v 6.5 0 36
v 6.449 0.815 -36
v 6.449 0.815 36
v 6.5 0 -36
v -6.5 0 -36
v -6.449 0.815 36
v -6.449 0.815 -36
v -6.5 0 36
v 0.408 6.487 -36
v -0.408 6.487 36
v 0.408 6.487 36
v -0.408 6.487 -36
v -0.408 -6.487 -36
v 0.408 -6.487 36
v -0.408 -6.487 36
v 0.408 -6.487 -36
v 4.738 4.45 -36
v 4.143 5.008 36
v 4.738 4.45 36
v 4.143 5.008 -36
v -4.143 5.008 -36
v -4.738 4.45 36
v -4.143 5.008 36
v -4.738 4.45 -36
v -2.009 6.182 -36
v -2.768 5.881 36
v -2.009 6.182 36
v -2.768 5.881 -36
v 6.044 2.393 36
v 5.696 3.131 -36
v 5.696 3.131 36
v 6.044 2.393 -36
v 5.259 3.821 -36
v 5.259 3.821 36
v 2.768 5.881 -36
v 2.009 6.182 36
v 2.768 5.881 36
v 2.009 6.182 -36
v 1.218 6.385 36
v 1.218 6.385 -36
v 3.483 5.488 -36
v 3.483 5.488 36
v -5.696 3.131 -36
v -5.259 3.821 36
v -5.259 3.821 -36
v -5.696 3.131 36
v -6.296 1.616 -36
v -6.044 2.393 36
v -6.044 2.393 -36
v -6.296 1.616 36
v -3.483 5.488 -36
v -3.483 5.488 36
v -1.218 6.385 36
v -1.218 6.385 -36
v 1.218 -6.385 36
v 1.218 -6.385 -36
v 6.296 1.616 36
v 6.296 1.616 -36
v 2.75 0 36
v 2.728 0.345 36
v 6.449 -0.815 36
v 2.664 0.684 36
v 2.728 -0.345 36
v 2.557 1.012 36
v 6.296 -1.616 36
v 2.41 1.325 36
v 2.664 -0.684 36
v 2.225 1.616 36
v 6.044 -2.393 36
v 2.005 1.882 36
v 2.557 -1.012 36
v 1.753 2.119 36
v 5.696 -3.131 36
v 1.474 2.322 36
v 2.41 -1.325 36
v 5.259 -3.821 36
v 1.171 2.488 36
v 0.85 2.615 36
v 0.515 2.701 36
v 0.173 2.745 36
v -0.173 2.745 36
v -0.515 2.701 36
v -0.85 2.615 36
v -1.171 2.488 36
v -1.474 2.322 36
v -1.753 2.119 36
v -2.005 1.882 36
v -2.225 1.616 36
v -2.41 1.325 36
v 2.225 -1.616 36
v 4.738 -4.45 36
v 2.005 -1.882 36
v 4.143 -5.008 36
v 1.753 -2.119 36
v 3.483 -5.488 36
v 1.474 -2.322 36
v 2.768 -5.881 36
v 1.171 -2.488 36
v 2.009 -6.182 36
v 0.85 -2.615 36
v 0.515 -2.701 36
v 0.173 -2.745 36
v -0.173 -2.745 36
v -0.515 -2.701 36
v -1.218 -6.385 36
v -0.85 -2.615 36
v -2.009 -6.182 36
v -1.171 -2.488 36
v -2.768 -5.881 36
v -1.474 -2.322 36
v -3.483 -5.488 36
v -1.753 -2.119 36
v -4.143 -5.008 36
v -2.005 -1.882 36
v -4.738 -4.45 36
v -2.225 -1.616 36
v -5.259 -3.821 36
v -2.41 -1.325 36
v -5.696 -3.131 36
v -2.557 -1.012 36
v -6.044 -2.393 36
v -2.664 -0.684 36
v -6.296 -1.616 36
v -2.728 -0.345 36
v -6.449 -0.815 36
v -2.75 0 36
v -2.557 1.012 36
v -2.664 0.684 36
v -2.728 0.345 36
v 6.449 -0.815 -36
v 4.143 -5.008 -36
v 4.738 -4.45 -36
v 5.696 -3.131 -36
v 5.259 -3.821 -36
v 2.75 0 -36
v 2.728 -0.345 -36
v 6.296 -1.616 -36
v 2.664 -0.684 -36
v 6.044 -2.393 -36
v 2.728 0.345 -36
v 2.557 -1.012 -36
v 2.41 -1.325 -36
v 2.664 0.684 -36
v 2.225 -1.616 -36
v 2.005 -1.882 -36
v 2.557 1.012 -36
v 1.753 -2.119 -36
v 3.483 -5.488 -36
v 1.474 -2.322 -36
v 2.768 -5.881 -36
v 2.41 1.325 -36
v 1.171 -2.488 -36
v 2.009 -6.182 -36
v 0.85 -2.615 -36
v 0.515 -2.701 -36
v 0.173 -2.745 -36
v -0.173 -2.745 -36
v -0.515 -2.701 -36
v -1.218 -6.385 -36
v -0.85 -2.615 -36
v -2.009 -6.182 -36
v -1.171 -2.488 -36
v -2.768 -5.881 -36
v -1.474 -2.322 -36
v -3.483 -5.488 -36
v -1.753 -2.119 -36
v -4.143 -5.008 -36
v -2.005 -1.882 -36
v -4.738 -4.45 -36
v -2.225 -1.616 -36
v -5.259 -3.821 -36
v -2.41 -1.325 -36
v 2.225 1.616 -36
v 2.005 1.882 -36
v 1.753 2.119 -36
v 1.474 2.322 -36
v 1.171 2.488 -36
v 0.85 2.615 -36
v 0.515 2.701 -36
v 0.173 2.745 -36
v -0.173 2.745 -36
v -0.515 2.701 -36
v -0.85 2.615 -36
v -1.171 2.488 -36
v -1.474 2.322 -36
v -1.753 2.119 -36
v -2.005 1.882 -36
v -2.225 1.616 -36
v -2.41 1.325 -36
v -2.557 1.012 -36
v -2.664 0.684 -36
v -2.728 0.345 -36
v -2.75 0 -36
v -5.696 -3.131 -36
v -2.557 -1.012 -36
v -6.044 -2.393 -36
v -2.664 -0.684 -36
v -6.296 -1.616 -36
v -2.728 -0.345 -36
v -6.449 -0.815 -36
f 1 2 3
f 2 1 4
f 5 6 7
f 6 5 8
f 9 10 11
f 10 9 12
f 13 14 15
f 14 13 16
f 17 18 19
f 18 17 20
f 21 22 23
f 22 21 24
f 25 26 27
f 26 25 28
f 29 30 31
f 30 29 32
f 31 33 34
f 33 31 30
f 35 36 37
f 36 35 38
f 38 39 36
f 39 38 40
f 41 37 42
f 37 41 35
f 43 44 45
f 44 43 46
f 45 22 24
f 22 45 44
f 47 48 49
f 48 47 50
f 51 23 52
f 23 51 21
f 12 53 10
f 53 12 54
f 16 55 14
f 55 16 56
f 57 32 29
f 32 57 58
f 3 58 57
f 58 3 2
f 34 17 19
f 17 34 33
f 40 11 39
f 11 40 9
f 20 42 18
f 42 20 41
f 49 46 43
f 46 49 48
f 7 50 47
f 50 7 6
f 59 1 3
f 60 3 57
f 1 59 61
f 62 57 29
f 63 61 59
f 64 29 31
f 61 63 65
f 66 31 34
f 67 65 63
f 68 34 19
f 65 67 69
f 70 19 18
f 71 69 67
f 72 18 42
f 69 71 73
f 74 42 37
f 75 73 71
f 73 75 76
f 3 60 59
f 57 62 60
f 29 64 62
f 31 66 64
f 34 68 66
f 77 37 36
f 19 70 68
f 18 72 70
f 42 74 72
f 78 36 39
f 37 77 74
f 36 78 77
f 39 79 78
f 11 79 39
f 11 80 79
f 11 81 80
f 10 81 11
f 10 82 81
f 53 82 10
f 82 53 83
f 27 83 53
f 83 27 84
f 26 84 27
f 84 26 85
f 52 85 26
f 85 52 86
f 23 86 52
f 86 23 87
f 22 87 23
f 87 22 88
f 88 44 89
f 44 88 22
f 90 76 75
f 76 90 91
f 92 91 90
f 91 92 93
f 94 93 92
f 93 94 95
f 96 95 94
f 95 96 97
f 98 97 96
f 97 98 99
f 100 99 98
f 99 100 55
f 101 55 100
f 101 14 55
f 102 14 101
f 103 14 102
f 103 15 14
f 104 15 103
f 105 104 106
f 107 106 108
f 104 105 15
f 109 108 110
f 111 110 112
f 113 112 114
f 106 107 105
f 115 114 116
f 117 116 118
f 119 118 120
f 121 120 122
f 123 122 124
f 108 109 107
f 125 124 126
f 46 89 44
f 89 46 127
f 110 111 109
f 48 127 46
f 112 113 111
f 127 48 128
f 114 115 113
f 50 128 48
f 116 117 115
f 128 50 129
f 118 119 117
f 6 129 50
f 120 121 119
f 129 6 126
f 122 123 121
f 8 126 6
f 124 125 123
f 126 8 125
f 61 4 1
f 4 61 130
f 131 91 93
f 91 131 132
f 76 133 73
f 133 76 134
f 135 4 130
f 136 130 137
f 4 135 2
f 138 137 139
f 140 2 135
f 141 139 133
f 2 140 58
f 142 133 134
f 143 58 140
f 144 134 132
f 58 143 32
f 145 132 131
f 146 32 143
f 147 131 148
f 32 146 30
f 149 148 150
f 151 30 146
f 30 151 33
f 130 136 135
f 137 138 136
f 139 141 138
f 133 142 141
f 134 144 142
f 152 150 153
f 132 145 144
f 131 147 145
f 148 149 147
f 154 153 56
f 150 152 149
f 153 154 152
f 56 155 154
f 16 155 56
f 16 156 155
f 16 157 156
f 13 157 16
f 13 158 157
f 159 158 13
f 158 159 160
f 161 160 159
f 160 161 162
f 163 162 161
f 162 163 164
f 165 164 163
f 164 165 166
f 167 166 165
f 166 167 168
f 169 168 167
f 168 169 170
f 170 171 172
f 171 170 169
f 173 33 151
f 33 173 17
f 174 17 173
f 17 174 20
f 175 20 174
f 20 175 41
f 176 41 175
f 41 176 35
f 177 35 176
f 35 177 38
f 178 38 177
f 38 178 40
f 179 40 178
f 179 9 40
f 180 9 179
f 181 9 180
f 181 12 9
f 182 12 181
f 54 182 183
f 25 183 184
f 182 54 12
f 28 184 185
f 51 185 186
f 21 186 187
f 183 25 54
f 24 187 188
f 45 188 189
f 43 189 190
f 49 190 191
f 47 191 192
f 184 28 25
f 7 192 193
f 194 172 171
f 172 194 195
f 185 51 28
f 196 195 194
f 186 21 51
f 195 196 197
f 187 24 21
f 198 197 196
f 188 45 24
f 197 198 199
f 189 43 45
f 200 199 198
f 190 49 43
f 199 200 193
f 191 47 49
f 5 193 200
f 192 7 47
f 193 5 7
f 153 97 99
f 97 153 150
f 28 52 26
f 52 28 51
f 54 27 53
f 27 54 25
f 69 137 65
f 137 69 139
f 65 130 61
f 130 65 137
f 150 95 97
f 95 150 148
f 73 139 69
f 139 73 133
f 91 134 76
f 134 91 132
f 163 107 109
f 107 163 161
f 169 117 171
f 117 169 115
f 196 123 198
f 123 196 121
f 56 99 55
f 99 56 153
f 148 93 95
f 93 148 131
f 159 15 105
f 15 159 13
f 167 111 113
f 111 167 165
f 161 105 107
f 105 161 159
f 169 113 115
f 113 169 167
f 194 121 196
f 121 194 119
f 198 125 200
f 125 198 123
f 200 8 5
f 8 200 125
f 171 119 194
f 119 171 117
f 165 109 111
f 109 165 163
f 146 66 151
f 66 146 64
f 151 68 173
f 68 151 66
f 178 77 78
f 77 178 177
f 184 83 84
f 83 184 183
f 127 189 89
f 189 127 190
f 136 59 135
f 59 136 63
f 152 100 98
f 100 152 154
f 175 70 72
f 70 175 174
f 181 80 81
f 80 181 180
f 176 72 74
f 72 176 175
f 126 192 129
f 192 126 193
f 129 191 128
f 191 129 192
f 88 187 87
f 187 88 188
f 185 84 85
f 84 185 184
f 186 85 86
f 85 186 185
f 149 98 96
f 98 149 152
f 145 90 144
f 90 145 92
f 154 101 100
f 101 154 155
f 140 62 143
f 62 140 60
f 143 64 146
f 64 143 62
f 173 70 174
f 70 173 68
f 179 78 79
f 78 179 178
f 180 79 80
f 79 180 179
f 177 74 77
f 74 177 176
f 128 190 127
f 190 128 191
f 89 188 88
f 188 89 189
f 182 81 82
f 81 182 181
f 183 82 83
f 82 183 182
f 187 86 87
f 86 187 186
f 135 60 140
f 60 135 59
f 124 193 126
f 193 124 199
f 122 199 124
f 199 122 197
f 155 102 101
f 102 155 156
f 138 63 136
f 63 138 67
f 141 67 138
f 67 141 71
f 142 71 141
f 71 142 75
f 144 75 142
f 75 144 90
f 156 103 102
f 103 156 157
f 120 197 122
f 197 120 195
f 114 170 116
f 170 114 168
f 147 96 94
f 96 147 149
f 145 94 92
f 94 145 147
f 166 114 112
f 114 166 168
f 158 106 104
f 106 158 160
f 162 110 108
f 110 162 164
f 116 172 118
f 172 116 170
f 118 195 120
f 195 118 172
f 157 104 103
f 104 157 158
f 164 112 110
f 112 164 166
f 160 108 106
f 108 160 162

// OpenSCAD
$fn = 50;


difference() {
	union() {
		translate(v = [0, 0, -36.0000000000]) {
			cylinder(h = 72, r = 6.5000000000);
		}
	}
	union() {
		translate(v = [0, 0, -100.0000000000]) {
			cylinder(h = 200, r = 2.7500000000);
		}
	}
}
